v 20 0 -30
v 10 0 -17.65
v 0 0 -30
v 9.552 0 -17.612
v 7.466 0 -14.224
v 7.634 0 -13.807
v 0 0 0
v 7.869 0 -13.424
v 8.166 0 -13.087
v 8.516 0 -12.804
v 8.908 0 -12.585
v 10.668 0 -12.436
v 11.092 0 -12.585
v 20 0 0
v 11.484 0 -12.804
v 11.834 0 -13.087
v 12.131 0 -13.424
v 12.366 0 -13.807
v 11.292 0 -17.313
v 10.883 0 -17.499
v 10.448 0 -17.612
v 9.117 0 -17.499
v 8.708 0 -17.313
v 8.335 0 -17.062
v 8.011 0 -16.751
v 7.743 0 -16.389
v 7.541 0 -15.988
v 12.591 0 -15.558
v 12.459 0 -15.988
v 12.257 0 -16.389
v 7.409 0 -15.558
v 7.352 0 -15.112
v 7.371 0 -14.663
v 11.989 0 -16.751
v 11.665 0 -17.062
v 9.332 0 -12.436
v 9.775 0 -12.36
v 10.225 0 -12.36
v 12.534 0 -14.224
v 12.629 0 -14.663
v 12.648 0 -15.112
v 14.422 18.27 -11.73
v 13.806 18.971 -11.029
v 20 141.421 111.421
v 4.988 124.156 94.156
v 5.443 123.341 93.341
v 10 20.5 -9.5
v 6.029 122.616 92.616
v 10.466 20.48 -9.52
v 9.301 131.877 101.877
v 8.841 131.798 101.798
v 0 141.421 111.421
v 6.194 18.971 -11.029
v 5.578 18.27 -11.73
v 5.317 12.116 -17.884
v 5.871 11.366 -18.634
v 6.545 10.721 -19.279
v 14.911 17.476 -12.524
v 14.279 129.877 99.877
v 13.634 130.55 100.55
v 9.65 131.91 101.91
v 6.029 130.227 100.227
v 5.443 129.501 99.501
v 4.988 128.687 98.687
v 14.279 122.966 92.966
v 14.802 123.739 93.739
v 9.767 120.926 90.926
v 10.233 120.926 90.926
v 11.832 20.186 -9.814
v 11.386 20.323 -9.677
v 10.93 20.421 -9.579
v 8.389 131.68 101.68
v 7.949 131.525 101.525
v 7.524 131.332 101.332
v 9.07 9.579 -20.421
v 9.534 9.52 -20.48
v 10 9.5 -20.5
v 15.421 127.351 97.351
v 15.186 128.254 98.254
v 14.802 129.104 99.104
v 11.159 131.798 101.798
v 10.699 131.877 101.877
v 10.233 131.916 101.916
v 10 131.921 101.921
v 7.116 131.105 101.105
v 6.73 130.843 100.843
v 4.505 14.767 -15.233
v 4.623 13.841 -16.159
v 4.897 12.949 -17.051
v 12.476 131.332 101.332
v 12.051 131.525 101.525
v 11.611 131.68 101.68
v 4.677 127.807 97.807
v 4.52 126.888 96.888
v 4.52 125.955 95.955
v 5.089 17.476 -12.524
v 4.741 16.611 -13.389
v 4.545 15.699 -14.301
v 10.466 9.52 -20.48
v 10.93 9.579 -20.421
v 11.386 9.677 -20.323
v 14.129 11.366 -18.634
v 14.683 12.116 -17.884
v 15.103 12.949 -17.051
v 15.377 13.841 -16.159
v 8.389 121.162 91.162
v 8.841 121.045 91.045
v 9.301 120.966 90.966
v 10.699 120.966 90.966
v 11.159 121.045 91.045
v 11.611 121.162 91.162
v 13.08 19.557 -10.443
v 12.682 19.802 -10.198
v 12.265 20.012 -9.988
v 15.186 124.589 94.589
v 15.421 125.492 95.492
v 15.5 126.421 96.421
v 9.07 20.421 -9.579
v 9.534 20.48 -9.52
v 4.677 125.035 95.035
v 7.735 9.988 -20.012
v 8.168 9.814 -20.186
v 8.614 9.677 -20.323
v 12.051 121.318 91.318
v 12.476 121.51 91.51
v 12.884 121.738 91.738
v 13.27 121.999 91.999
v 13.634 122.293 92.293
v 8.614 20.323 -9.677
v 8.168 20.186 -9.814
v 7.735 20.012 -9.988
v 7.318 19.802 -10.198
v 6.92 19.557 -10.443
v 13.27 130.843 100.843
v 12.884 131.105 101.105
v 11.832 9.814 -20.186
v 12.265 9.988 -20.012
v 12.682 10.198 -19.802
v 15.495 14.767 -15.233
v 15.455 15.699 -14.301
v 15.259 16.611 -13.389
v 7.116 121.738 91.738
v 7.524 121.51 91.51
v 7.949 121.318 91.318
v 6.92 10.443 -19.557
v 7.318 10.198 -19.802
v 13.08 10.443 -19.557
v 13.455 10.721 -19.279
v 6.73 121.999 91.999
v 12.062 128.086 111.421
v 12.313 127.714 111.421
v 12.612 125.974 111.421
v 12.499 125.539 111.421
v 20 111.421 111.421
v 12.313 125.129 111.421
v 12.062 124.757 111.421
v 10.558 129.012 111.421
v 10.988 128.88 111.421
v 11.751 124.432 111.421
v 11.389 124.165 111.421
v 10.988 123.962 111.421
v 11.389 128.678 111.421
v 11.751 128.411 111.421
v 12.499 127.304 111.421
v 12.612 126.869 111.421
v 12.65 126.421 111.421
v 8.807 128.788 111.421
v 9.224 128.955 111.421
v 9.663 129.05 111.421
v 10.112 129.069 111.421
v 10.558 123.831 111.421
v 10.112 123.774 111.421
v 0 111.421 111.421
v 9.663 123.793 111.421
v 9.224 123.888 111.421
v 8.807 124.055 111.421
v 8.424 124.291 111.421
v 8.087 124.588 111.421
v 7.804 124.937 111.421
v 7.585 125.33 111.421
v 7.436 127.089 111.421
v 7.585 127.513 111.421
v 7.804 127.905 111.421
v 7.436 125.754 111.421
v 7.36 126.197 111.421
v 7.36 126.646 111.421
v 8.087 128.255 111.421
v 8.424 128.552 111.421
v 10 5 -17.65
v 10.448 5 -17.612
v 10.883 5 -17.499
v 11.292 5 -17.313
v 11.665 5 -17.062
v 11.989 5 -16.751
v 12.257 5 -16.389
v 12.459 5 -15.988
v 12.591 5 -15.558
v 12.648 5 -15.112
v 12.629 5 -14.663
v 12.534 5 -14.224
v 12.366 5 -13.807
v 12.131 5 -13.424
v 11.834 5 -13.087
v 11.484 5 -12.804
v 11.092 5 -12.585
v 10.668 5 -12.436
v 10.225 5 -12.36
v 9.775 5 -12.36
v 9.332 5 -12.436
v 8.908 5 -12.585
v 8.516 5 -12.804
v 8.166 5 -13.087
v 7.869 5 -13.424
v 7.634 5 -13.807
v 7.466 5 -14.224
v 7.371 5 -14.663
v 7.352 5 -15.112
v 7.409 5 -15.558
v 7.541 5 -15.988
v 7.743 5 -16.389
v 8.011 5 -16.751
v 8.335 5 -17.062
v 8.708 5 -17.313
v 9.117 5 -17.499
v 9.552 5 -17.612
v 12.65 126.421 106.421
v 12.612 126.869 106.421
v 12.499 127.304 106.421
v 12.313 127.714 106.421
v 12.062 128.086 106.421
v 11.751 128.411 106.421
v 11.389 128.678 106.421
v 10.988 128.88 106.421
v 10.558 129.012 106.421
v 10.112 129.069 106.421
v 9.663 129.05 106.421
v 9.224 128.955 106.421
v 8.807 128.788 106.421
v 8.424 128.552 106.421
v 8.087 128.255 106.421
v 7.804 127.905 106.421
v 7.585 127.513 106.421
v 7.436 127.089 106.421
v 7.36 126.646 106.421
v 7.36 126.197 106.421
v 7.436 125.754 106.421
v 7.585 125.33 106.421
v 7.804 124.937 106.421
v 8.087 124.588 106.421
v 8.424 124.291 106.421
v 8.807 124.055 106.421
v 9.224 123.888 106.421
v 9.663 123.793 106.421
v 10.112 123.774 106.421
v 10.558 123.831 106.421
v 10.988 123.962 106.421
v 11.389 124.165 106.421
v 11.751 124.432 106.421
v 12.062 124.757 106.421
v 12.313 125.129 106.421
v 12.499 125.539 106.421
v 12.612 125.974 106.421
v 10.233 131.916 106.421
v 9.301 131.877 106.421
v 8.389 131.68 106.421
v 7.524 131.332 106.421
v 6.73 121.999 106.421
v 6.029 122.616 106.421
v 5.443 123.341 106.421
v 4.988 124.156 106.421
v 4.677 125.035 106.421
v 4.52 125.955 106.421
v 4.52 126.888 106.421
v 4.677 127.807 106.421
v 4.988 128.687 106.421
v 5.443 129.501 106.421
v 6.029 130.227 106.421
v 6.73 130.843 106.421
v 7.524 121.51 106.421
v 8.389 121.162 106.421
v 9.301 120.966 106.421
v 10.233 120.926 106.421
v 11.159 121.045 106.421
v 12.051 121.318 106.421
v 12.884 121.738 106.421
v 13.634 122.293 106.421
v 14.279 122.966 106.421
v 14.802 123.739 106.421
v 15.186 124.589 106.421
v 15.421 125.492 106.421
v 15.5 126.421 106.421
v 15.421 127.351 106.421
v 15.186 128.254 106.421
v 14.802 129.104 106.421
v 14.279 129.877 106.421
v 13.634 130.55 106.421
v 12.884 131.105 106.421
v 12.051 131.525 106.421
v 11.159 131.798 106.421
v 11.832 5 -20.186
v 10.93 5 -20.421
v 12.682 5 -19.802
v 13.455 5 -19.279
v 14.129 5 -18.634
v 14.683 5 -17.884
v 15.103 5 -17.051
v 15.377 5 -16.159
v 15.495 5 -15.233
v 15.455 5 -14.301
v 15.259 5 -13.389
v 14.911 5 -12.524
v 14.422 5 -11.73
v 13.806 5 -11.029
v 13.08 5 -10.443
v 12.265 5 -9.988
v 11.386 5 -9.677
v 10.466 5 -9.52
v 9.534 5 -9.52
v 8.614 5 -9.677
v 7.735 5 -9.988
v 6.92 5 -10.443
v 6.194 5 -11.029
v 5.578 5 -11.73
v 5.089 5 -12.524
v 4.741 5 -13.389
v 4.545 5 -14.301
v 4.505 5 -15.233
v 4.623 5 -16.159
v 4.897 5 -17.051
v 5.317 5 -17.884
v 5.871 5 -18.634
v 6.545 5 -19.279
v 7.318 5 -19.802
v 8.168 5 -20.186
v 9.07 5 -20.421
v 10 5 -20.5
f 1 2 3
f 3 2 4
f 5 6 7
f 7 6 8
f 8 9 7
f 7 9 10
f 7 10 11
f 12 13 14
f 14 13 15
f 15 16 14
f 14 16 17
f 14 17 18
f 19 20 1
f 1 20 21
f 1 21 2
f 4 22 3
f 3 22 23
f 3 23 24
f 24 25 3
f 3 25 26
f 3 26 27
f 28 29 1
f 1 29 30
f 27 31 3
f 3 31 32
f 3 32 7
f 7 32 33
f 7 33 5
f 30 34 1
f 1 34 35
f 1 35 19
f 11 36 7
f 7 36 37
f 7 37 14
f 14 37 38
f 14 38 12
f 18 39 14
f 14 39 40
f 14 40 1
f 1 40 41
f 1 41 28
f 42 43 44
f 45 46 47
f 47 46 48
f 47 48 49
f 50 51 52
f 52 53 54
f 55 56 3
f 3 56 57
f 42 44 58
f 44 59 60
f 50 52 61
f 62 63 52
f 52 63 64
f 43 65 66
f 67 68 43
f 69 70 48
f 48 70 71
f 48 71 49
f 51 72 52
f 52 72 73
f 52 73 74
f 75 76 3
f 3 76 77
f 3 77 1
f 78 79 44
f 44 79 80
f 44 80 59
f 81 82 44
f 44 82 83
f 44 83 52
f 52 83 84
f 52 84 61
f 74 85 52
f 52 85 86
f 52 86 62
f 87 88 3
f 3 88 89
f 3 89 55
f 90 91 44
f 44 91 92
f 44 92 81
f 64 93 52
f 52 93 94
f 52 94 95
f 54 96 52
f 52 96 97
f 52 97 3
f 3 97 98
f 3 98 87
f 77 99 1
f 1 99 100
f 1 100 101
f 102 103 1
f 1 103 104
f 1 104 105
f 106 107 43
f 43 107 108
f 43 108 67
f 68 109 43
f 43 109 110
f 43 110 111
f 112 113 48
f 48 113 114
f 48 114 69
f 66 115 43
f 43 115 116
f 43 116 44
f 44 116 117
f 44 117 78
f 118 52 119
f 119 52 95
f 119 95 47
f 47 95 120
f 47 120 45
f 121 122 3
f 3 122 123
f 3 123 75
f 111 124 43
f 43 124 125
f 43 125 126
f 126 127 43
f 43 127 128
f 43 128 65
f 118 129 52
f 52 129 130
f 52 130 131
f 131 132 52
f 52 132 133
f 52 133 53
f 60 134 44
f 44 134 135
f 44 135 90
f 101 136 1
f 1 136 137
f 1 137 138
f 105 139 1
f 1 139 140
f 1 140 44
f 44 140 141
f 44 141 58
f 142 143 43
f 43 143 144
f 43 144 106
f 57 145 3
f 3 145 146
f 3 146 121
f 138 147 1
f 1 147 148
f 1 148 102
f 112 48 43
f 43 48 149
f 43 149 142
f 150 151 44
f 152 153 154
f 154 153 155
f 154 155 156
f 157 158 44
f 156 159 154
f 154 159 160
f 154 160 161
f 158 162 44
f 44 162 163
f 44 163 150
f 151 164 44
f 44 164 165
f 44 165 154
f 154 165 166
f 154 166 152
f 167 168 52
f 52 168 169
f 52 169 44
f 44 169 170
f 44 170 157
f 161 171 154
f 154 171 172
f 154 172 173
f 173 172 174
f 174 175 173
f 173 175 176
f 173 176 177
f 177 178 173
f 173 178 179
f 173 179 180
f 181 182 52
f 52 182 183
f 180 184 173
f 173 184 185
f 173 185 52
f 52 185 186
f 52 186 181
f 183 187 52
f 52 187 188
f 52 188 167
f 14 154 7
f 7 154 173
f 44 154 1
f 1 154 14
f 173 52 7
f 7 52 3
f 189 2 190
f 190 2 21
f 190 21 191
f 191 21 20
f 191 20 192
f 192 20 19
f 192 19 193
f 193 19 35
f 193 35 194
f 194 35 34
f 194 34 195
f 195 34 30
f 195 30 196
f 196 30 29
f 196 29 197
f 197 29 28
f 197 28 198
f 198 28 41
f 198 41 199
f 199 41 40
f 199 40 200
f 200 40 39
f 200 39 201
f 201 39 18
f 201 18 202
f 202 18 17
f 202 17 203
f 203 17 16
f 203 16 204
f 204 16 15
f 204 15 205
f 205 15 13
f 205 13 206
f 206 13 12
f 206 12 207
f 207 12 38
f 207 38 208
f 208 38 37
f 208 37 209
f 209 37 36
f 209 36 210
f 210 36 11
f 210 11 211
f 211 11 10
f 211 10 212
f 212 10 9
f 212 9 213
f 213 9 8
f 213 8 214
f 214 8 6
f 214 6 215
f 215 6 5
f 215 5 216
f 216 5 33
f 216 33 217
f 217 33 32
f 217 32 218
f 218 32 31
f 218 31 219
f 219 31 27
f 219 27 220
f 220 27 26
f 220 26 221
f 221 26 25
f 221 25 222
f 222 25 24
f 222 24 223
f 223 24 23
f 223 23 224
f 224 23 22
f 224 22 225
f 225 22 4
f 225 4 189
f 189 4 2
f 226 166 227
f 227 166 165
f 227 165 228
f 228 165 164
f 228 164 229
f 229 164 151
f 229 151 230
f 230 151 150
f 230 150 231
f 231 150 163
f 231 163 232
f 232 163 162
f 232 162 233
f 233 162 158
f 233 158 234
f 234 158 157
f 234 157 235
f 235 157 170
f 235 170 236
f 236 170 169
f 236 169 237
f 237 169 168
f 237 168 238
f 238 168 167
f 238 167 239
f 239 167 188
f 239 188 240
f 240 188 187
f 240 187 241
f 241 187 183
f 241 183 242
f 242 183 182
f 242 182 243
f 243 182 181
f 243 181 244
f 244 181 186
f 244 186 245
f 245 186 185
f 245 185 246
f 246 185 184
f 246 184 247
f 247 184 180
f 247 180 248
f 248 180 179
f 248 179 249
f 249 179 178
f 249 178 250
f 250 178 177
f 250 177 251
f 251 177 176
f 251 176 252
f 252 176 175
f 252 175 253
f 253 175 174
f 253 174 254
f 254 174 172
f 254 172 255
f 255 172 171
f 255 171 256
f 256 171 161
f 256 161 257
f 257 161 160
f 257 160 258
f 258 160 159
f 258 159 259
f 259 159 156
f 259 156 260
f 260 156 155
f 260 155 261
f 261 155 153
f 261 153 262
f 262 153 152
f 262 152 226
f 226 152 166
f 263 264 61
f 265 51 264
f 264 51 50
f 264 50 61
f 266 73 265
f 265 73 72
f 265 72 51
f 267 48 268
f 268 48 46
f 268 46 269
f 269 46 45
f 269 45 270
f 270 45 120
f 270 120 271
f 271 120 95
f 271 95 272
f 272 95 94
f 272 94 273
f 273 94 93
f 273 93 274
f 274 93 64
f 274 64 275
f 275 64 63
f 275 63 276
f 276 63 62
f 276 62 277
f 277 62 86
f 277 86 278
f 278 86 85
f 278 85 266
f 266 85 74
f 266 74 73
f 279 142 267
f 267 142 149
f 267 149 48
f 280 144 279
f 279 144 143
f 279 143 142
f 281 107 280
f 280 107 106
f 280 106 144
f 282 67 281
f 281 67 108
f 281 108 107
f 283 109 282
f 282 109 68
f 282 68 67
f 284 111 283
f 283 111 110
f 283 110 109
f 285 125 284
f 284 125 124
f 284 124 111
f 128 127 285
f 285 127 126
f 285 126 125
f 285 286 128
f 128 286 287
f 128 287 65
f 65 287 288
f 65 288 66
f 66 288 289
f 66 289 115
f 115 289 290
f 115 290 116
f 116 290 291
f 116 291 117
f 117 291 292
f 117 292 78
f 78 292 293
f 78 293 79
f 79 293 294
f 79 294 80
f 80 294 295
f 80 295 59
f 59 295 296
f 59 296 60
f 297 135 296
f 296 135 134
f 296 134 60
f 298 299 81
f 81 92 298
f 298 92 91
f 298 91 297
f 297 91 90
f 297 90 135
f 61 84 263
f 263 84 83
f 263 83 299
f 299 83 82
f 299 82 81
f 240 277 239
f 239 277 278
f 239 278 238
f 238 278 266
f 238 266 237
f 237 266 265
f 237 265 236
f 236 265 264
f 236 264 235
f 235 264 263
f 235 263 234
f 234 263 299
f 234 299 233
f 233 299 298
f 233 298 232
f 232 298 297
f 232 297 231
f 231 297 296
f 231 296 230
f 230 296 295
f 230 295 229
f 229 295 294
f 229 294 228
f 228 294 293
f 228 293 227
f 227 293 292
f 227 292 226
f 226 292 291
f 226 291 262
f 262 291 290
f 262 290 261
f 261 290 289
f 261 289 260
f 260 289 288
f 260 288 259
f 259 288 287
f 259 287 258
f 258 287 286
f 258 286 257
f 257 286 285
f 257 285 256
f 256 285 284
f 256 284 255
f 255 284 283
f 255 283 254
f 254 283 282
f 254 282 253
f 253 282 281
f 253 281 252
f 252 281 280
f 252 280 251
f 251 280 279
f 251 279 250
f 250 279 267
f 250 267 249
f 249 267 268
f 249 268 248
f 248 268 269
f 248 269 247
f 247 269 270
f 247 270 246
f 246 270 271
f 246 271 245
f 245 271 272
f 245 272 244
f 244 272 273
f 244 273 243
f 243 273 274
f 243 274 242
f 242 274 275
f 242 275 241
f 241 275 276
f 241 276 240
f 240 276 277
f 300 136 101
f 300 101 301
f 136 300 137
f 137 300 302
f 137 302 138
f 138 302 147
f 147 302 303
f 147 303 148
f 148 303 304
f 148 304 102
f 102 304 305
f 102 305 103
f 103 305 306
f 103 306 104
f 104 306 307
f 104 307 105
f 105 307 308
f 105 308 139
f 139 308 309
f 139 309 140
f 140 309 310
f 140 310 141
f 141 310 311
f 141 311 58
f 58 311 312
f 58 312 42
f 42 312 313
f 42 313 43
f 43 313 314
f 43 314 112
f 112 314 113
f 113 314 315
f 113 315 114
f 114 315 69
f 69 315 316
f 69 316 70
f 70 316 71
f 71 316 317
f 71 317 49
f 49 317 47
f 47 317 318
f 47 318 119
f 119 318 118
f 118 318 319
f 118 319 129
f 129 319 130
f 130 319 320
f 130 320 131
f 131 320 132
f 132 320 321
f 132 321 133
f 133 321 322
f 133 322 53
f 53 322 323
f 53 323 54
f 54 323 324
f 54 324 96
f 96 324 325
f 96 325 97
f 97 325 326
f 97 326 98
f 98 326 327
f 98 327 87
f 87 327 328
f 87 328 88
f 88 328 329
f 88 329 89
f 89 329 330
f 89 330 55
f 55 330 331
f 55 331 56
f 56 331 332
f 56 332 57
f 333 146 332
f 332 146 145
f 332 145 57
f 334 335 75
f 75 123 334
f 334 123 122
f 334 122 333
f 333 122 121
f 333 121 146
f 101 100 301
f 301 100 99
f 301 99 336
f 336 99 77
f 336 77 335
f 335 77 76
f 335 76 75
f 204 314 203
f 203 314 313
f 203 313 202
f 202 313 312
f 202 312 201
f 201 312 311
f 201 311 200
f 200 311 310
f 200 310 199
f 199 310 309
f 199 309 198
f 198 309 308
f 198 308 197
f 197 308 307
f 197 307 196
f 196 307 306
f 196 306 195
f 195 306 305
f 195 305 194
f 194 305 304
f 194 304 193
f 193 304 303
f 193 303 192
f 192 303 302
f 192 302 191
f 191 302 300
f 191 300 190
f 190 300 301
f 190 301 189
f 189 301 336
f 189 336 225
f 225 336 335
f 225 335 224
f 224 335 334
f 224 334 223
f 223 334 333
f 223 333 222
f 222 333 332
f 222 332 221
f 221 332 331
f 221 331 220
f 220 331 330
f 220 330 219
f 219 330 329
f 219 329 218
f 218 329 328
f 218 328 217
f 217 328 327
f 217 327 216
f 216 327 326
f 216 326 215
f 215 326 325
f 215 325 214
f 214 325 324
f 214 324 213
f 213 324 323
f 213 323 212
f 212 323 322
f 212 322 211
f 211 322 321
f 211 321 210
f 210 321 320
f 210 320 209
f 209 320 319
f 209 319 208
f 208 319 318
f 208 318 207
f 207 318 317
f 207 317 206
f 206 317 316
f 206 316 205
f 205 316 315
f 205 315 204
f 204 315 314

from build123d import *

# Parameters (mm, degrees)
BOSS_EXTRUDE1_DEPTH = 20
SKETCH3_R           = 2.65
CUT_EXTRUDE1_DEPTH  = 182.148333213
SKETCH4_R           = 2.65
CUT_EXTRUDE2_DEPTH  = 201.997512422
SKETCH5_R           = 5.5
CUT_EXTRUDE3_DEPTH  = 198.511484318
SKETCH6_R           = 5.5
CUT_EXTRUDE4_DEPTH  = 178.272403558


with BuildPart() as part:
    # Sketch2 → Boss-Extrude1 (new body)
    with BuildSketch(Plane(origin=(0, 0, 0), x_dir=(0, 0, -1), z_dir=(1, 0, 0))):
        Polygon((0, 0), (-111.421356237, 111.421356237), (-111.421356237, 141.421356237), (30, 0), align=None)
    extrude(amount=BOSS_EXTRUDE1_DEPTH)

    # Sketch3 → Cut-Extrude1 (cut, through all)
    with BuildSketch(Plane.XZ):
        with Locations(Location((10, -15, 0), (0, 0, 270))):
            Circle(SKETCH3_R)
    extrude(amount=-CUT_EXTRUDE1_DEPTH, mode=Mode.SUBTRACT)

    # Sketch4 → Cut-Extrude2 (cut, through all)
    with BuildSketch(Plane.XY.offset(111.421356237)):
        with Locations((10, 126.421356237)):
            Circle(SKETCH4_R)
    extrude(amount=-CUT_EXTRUDE2_DEPTH, mode=Mode.SUBTRACT)

    # Sketch5 → Cut-Extrude3 (cut, through all)
    with BuildSketch(Plane.XY.offset(106.421356237)):
        with Locations((10, 126.421356237)):
            Circle(SKETCH5_R)
    extrude(amount=-CUT_EXTRUDE3_DEPTH, mode=Mode.SUBTRACT)

    # Sketch6 → Cut-Extrude4 (cut, through all)
    with BuildSketch(Plane(origin=(0, 5, 0), x_dir=(-1, 0, 0), z_dir=(0, -1, 0))):
        with Locations(Location((-10, 15, 0), (0, 0, 90))):
            Circle(SKETCH6_R)
    extrude(amount=-CUT_EXTRUDE4_DEPTH, mode=Mode.SUBTRACT)


solid = part.part
